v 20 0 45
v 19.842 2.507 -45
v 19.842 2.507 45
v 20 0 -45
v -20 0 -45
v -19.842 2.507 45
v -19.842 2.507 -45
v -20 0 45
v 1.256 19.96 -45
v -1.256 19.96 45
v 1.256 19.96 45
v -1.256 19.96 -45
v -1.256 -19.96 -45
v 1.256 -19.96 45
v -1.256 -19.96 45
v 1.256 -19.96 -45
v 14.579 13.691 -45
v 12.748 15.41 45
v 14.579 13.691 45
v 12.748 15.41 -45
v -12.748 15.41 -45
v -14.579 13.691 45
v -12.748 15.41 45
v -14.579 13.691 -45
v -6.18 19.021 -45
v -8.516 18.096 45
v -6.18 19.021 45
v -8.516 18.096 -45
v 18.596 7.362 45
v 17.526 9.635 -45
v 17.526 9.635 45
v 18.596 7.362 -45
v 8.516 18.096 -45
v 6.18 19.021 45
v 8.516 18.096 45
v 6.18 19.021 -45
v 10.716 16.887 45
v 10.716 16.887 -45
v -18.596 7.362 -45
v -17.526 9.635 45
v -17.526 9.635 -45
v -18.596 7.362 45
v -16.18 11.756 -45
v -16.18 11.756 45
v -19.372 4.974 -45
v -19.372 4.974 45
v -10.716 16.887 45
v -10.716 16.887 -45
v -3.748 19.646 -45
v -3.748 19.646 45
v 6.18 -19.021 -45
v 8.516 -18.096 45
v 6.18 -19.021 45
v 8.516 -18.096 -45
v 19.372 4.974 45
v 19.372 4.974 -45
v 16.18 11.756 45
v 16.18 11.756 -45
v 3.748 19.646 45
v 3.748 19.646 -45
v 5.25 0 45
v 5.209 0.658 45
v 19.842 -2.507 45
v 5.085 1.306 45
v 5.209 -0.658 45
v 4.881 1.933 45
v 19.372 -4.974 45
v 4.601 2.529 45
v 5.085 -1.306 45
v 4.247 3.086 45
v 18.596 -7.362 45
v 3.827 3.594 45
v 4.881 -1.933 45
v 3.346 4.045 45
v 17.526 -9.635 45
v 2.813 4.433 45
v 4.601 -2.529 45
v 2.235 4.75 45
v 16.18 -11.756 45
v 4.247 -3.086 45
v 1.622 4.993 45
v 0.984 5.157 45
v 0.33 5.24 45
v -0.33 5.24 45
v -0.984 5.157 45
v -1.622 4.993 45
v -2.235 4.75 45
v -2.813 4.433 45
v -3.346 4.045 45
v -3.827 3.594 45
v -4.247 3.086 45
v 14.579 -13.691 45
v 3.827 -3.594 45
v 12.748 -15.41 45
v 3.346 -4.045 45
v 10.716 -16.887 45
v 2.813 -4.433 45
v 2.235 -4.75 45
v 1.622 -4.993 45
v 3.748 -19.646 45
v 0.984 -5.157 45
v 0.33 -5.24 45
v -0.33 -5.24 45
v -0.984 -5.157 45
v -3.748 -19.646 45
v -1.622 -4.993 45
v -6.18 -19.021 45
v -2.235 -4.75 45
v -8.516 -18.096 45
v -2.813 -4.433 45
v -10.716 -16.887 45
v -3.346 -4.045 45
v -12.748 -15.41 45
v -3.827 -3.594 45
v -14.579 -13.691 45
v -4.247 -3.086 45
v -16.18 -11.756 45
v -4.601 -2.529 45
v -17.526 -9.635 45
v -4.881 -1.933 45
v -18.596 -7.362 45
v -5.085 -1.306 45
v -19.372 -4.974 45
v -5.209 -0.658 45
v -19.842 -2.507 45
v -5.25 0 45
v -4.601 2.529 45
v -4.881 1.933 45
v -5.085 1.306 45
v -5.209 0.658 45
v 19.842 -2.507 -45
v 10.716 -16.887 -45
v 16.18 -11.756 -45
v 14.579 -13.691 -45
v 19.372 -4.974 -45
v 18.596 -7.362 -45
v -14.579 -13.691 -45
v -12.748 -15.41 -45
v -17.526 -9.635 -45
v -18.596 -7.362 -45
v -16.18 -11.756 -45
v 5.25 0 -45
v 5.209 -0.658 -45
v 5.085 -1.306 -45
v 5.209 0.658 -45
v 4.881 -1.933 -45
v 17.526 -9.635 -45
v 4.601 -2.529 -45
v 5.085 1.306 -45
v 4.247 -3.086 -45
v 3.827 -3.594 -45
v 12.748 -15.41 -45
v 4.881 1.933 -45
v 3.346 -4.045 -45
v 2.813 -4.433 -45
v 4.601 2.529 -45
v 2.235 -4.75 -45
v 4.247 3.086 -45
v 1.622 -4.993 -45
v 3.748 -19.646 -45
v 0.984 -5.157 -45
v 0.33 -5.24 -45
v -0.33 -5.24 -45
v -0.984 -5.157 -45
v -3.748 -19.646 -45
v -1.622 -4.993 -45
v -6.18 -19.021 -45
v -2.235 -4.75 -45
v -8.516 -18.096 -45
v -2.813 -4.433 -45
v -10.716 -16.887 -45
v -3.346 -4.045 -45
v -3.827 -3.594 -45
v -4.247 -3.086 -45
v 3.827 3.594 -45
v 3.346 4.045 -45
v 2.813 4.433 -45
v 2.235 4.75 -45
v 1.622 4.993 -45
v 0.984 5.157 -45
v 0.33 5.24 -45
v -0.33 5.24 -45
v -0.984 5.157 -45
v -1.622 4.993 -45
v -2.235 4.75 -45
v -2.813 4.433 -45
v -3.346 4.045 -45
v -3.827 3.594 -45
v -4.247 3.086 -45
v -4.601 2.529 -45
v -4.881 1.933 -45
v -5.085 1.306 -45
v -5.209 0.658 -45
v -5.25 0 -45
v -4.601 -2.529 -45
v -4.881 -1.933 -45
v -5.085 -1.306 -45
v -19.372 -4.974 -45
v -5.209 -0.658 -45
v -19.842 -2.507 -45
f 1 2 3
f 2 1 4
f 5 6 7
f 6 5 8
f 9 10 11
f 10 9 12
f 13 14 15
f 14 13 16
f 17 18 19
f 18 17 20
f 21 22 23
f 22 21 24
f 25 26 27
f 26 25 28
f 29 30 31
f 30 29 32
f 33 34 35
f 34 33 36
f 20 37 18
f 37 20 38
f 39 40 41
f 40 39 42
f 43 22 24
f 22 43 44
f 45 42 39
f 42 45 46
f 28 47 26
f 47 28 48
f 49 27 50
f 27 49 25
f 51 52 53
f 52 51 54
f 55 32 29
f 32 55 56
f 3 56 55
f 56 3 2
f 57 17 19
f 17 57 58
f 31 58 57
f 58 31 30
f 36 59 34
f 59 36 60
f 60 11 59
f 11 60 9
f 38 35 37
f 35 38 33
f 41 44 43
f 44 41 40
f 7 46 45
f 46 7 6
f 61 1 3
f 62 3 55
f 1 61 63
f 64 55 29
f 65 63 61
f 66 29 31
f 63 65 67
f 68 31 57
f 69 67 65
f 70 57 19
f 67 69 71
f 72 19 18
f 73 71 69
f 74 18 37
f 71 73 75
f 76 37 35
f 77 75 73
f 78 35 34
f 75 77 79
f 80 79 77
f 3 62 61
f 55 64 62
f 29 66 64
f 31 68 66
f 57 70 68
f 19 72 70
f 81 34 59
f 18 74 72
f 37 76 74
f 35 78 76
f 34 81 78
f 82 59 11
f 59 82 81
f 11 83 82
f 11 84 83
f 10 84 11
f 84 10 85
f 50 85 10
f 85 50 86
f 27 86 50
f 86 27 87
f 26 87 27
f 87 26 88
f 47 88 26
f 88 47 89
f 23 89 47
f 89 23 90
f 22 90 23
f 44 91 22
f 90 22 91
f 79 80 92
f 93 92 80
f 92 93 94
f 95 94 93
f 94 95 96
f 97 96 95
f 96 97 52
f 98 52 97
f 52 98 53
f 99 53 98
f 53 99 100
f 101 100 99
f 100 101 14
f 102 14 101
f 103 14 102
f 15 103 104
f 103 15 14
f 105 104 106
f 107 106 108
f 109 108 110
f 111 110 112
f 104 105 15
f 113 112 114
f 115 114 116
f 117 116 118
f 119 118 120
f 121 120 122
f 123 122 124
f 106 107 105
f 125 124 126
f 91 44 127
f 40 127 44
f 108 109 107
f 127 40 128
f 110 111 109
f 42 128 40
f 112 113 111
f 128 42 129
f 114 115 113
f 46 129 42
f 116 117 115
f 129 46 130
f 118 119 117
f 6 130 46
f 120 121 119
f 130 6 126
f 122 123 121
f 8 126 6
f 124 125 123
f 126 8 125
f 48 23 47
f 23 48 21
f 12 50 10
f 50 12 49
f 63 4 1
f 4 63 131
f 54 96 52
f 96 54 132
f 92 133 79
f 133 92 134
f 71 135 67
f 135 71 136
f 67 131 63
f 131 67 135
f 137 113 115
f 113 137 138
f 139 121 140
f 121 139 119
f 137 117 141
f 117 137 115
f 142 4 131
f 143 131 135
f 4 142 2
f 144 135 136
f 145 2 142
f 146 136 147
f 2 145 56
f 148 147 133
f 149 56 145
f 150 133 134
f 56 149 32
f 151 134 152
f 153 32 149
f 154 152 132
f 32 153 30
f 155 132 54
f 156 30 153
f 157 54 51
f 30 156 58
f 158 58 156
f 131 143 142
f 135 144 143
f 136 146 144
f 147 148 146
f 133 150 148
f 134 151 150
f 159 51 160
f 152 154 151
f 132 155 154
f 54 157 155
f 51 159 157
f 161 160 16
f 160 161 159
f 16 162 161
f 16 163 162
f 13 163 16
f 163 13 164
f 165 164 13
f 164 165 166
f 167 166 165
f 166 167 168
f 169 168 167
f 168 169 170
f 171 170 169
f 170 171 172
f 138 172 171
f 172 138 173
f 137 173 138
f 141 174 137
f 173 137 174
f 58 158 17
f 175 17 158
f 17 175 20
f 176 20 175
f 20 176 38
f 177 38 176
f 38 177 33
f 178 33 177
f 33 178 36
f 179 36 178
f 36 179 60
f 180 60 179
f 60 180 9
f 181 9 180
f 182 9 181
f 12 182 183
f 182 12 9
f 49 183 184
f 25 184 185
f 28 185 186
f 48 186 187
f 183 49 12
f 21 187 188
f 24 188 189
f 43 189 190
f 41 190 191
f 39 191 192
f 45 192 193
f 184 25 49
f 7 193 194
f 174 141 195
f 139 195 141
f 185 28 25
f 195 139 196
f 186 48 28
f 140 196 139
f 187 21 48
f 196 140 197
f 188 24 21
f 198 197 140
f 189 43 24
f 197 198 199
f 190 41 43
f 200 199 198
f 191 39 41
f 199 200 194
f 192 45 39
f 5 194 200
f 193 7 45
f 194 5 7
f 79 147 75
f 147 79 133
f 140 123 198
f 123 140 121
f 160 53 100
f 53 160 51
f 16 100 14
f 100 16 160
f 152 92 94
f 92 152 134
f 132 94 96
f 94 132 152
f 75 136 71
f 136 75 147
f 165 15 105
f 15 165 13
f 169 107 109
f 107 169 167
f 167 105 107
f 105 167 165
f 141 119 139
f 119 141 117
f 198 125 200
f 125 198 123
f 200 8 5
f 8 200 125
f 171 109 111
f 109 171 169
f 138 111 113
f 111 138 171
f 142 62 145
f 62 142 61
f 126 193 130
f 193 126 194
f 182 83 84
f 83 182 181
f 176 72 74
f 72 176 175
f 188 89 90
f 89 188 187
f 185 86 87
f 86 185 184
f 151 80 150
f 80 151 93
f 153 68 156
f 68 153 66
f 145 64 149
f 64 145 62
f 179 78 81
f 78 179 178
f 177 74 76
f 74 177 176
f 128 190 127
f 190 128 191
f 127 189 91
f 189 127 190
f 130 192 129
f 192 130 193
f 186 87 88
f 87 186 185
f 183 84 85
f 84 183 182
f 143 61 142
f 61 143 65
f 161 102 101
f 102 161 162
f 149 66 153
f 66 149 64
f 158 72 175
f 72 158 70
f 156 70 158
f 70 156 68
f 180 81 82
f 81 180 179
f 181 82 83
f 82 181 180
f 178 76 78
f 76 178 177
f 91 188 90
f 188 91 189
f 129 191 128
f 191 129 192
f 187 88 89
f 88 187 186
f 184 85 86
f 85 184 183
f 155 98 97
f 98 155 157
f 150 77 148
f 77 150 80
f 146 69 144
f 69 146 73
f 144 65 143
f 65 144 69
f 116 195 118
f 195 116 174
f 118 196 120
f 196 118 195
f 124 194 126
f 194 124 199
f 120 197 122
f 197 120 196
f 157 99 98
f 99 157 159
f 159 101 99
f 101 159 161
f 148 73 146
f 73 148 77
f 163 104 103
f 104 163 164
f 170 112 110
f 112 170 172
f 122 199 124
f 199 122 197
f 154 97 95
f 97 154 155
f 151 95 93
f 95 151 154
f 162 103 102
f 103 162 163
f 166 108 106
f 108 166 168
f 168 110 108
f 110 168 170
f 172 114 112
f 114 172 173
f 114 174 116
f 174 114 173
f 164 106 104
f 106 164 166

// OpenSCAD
$fn = 50;


difference() {
	union() {
		translate(v = [0, 0, -45.0000000000]) {
			cylinder(h = 90, r = 20.0000000000);
		}
	}
	union() {
		translate(v = [0, 0, -100.0000000000]) {
			cylinder(h = 200, r = 5.2500000000);
		}
	}
}
